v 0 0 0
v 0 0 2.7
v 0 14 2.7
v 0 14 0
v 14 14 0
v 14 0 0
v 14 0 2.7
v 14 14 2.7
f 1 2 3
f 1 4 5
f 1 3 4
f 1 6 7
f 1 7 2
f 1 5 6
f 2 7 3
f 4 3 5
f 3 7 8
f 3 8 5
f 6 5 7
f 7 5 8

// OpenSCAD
/* Warning, this is a very basic generator with a lot of approximation 
input data : [MQFP, VCX, 14x14x2.7mm, 64, , B, C04-00022B]
generated by com.zoubworld.electronics.cad.model3d.Basic
Date : Sun Feb 15 10:50:48 CET 2026
*/

//body
color("black")
translate([0,0,0])
cube([14.0,14.0,2.7], center=false);
